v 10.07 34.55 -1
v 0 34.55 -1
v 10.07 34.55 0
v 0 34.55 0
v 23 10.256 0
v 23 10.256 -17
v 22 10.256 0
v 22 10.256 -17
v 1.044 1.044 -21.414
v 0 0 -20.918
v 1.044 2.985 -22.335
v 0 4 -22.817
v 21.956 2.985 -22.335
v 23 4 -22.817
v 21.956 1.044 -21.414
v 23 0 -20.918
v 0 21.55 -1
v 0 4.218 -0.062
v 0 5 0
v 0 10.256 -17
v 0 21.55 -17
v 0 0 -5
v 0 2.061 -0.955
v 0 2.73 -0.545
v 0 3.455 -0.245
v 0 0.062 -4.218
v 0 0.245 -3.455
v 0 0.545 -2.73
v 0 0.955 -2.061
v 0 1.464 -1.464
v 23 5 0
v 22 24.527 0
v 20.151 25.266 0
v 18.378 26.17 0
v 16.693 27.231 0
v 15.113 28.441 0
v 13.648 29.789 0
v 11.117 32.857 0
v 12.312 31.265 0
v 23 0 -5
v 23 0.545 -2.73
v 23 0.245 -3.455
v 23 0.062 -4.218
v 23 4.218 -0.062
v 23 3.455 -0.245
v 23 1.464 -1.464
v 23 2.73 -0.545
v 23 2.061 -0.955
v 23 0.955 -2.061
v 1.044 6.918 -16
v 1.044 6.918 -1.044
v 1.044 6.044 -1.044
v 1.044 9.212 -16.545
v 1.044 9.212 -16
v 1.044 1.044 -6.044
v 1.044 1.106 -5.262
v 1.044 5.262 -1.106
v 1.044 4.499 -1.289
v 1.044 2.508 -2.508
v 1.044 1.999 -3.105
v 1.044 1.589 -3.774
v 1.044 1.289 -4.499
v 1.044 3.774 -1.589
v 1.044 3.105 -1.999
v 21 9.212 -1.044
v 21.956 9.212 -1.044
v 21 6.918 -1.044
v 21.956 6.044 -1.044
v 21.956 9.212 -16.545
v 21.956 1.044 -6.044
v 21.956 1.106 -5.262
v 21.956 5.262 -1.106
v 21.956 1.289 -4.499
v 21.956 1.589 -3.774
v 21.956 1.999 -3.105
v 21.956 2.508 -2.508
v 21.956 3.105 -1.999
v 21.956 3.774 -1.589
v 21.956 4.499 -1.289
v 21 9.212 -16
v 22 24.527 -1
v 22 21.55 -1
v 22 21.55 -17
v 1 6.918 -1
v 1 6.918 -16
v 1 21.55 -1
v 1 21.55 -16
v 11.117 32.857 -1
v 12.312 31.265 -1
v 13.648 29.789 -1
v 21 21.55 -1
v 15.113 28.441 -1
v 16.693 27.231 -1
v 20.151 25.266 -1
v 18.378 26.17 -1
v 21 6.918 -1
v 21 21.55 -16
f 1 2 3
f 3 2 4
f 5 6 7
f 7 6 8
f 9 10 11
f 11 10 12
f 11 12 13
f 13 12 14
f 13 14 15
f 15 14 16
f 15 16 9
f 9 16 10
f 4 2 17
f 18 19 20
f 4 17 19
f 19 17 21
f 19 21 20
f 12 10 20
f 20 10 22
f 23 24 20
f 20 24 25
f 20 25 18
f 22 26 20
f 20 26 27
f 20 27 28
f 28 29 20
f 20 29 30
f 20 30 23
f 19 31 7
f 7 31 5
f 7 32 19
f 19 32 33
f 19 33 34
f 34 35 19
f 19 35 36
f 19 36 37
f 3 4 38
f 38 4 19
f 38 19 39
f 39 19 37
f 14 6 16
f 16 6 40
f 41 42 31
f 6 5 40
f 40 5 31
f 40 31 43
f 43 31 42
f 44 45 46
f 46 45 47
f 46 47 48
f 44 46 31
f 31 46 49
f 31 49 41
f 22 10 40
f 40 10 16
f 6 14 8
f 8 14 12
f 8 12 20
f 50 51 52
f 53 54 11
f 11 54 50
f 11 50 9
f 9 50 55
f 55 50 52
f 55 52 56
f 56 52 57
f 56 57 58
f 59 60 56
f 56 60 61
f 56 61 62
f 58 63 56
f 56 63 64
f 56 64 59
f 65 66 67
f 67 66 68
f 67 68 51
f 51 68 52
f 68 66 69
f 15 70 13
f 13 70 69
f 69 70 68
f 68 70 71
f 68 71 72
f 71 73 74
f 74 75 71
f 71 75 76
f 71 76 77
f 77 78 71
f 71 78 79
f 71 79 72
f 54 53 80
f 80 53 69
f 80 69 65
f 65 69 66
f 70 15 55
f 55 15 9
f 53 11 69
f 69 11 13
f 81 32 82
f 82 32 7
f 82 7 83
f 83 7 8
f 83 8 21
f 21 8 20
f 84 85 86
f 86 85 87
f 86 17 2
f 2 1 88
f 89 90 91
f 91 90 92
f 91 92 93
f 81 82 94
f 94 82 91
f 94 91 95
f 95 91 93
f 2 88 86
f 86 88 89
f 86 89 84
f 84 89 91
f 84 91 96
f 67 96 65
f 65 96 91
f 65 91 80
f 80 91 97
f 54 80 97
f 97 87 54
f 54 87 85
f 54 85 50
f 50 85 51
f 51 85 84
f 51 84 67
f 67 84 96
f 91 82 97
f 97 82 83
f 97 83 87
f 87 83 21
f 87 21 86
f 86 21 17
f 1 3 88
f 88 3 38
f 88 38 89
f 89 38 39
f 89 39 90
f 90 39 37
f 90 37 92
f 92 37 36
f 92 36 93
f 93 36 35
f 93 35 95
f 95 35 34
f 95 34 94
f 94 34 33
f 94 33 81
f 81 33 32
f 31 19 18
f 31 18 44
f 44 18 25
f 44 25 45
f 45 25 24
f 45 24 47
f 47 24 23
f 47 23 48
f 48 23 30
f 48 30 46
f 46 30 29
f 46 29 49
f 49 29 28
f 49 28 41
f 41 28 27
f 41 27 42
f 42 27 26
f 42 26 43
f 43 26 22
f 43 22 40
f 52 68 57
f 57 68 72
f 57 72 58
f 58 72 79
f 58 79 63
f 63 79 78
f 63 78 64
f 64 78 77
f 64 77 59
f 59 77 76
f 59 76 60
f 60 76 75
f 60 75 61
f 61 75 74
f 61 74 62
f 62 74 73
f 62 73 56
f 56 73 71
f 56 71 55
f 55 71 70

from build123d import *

# Parameters (mm, degrees)
SKETCH1_W           = 23
SKETCH1_H           = 17
BOSS_EXTRUDE1_DEPTH = 10.256
BOSS_EXTRUDE2_DEPTH = 23
SHELL1_T            = -1.044
SKETCH3_W           = 22
SKETCH3_H           = 17
BOSS_EXTRUDE3_DEPTH = 24.294
SHELL2_START        = 1
SHELL2_OUTLINE_W    = 24.338
SHELL2_OUTLINE_H    = 15
SHELL2_DEPTH        = 20
SKETCH4_W           = 20
SKETCH4_H           = 15
CUT_EXTRUDE1_DEPTH  = 3.294
SKETCH5_W           = 16
SKETCH5_H           = 13
CUT_EXTRUDE2_DEPTH  = 26.294
CUT_EXTRUDE3_DEPTH  = 26.294
FILLET1_R           = 5
FILLET2_R           = 5


# Read off the part's stored shape, not the designer's step: Shell2
with BuildPart() as part:
    # Sketch1 → Boss-Extrude1 (new body)
    with BuildSketch(Plane(origin=(0, 0, 0), x_dir=(1, 0, 0), z_dir=(0, 1, 0))):
        with Locations((11.5, 8.5)):
            Rectangle(SKETCH1_W, SKETCH1_H)
    extrude(amount=BOSS_EXTRUDE1_DEPTH)

    # Sketch2 → Boss-Extrude2 (add)
    with BuildSketch(Plane(origin=(23, 0, 0), x_dir=(0, 0, -1), z_dir=(1, 0, 0))):
        Polygon((17, 0), (20.918, 0), (22.816626616, 4.000300111), (17, 10.256), align=None)
    extrude(amount=-BOSS_EXTRUDE2_DEPTH)

    # Shell1
    shell1_openings = [part.faces().sort_by_distance(p)[0] for p in [
        (11.5, 2.000150055, -21.867313308),
    ]]
    offset(amount=SHELL1_T, openings=shell1_openings, kind=Kind.INTERSECTION)

    # Sketch3 → Boss-Extrude3 (add)
    with BuildSketch(Plane(origin=(0, 10.256, 0), x_dir=(1, 0, 0), z_dir=(0, 1, 0))):
        with Locations((11, 8.5)):
            Rectangle(SKETCH3_W, SKETCH3_H)
    extrude(amount=BOSS_EXTRUDE3_DEPTH)

    # Shell2 outline → Shell2 (cut)
    with BuildSketch(Plane.YZ.offset(SHELL2_START)):
        with Locations((22.381, -8.5)):
            Rectangle(SHELL2_OUTLINE_W, SHELL2_OUTLINE_H)
    extrude(amount=SHELL2_DEPTH, mode=Mode.SUBTRACT)

    # Sketch4 → Cut-Extrude1 (cut)
    with BuildSketch(Plane(origin=(0, 10.212, 0), x_dir=(1, 0, 0), z_dir=(0, 1, 0))):
        with Locations((11, 8.5)):
            Rectangle(SKETCH4_W, SKETCH4_H)
    extrude(amount=-CUT_EXTRUDE1_DEPTH, mode=Mode.SUBTRACT)

    # Sketch5 → Cut-Extrude2 (cut)
    with BuildSketch(Plane(origin=(22, 0, 0), x_dir=(0, 0, -1), z_dir=(1, 0, 0))):
        with Locations((9, 28.05)):
            Rectangle(SKETCH5_W, SKETCH5_H)
    extrude(amount=-CUT_EXTRUDE2_DEPTH, mode=Mode.SUBTRACT)

    # Sketch6 → Cut-Extrude3 (cut)
    with BuildSketch(Plane.XY):
        with BuildLine():
            Line((22, 34.55), (10.070124752, 34.55))
            ThreePointArc((10.070124752, 34.55), (15.112523328, 28.440572535), (22, 24.5273191))
            Line((22, 24.5273191), (22, 34.55))
        make_face()
    extrude(amount=-CUT_EXTRUDE3_DEPTH, mode=Mode.SUBTRACT)

    # Fillet1
    fillet1_edges = [part.edges().sort_by_distance(p)[0] for p in [
        (11.5, 0, 0),
    ]]
    fillet(fillet1_edges, radius=FILLET1_R)

    # Fillet2
    fillet2_edges = [part.edges().sort_by_distance(p)[0] for p in [
        (11.5, 1.044, -1.044),
    ]]
    fillet(fillet2_edges, radius=FILLET2_R)


solid = part.part
